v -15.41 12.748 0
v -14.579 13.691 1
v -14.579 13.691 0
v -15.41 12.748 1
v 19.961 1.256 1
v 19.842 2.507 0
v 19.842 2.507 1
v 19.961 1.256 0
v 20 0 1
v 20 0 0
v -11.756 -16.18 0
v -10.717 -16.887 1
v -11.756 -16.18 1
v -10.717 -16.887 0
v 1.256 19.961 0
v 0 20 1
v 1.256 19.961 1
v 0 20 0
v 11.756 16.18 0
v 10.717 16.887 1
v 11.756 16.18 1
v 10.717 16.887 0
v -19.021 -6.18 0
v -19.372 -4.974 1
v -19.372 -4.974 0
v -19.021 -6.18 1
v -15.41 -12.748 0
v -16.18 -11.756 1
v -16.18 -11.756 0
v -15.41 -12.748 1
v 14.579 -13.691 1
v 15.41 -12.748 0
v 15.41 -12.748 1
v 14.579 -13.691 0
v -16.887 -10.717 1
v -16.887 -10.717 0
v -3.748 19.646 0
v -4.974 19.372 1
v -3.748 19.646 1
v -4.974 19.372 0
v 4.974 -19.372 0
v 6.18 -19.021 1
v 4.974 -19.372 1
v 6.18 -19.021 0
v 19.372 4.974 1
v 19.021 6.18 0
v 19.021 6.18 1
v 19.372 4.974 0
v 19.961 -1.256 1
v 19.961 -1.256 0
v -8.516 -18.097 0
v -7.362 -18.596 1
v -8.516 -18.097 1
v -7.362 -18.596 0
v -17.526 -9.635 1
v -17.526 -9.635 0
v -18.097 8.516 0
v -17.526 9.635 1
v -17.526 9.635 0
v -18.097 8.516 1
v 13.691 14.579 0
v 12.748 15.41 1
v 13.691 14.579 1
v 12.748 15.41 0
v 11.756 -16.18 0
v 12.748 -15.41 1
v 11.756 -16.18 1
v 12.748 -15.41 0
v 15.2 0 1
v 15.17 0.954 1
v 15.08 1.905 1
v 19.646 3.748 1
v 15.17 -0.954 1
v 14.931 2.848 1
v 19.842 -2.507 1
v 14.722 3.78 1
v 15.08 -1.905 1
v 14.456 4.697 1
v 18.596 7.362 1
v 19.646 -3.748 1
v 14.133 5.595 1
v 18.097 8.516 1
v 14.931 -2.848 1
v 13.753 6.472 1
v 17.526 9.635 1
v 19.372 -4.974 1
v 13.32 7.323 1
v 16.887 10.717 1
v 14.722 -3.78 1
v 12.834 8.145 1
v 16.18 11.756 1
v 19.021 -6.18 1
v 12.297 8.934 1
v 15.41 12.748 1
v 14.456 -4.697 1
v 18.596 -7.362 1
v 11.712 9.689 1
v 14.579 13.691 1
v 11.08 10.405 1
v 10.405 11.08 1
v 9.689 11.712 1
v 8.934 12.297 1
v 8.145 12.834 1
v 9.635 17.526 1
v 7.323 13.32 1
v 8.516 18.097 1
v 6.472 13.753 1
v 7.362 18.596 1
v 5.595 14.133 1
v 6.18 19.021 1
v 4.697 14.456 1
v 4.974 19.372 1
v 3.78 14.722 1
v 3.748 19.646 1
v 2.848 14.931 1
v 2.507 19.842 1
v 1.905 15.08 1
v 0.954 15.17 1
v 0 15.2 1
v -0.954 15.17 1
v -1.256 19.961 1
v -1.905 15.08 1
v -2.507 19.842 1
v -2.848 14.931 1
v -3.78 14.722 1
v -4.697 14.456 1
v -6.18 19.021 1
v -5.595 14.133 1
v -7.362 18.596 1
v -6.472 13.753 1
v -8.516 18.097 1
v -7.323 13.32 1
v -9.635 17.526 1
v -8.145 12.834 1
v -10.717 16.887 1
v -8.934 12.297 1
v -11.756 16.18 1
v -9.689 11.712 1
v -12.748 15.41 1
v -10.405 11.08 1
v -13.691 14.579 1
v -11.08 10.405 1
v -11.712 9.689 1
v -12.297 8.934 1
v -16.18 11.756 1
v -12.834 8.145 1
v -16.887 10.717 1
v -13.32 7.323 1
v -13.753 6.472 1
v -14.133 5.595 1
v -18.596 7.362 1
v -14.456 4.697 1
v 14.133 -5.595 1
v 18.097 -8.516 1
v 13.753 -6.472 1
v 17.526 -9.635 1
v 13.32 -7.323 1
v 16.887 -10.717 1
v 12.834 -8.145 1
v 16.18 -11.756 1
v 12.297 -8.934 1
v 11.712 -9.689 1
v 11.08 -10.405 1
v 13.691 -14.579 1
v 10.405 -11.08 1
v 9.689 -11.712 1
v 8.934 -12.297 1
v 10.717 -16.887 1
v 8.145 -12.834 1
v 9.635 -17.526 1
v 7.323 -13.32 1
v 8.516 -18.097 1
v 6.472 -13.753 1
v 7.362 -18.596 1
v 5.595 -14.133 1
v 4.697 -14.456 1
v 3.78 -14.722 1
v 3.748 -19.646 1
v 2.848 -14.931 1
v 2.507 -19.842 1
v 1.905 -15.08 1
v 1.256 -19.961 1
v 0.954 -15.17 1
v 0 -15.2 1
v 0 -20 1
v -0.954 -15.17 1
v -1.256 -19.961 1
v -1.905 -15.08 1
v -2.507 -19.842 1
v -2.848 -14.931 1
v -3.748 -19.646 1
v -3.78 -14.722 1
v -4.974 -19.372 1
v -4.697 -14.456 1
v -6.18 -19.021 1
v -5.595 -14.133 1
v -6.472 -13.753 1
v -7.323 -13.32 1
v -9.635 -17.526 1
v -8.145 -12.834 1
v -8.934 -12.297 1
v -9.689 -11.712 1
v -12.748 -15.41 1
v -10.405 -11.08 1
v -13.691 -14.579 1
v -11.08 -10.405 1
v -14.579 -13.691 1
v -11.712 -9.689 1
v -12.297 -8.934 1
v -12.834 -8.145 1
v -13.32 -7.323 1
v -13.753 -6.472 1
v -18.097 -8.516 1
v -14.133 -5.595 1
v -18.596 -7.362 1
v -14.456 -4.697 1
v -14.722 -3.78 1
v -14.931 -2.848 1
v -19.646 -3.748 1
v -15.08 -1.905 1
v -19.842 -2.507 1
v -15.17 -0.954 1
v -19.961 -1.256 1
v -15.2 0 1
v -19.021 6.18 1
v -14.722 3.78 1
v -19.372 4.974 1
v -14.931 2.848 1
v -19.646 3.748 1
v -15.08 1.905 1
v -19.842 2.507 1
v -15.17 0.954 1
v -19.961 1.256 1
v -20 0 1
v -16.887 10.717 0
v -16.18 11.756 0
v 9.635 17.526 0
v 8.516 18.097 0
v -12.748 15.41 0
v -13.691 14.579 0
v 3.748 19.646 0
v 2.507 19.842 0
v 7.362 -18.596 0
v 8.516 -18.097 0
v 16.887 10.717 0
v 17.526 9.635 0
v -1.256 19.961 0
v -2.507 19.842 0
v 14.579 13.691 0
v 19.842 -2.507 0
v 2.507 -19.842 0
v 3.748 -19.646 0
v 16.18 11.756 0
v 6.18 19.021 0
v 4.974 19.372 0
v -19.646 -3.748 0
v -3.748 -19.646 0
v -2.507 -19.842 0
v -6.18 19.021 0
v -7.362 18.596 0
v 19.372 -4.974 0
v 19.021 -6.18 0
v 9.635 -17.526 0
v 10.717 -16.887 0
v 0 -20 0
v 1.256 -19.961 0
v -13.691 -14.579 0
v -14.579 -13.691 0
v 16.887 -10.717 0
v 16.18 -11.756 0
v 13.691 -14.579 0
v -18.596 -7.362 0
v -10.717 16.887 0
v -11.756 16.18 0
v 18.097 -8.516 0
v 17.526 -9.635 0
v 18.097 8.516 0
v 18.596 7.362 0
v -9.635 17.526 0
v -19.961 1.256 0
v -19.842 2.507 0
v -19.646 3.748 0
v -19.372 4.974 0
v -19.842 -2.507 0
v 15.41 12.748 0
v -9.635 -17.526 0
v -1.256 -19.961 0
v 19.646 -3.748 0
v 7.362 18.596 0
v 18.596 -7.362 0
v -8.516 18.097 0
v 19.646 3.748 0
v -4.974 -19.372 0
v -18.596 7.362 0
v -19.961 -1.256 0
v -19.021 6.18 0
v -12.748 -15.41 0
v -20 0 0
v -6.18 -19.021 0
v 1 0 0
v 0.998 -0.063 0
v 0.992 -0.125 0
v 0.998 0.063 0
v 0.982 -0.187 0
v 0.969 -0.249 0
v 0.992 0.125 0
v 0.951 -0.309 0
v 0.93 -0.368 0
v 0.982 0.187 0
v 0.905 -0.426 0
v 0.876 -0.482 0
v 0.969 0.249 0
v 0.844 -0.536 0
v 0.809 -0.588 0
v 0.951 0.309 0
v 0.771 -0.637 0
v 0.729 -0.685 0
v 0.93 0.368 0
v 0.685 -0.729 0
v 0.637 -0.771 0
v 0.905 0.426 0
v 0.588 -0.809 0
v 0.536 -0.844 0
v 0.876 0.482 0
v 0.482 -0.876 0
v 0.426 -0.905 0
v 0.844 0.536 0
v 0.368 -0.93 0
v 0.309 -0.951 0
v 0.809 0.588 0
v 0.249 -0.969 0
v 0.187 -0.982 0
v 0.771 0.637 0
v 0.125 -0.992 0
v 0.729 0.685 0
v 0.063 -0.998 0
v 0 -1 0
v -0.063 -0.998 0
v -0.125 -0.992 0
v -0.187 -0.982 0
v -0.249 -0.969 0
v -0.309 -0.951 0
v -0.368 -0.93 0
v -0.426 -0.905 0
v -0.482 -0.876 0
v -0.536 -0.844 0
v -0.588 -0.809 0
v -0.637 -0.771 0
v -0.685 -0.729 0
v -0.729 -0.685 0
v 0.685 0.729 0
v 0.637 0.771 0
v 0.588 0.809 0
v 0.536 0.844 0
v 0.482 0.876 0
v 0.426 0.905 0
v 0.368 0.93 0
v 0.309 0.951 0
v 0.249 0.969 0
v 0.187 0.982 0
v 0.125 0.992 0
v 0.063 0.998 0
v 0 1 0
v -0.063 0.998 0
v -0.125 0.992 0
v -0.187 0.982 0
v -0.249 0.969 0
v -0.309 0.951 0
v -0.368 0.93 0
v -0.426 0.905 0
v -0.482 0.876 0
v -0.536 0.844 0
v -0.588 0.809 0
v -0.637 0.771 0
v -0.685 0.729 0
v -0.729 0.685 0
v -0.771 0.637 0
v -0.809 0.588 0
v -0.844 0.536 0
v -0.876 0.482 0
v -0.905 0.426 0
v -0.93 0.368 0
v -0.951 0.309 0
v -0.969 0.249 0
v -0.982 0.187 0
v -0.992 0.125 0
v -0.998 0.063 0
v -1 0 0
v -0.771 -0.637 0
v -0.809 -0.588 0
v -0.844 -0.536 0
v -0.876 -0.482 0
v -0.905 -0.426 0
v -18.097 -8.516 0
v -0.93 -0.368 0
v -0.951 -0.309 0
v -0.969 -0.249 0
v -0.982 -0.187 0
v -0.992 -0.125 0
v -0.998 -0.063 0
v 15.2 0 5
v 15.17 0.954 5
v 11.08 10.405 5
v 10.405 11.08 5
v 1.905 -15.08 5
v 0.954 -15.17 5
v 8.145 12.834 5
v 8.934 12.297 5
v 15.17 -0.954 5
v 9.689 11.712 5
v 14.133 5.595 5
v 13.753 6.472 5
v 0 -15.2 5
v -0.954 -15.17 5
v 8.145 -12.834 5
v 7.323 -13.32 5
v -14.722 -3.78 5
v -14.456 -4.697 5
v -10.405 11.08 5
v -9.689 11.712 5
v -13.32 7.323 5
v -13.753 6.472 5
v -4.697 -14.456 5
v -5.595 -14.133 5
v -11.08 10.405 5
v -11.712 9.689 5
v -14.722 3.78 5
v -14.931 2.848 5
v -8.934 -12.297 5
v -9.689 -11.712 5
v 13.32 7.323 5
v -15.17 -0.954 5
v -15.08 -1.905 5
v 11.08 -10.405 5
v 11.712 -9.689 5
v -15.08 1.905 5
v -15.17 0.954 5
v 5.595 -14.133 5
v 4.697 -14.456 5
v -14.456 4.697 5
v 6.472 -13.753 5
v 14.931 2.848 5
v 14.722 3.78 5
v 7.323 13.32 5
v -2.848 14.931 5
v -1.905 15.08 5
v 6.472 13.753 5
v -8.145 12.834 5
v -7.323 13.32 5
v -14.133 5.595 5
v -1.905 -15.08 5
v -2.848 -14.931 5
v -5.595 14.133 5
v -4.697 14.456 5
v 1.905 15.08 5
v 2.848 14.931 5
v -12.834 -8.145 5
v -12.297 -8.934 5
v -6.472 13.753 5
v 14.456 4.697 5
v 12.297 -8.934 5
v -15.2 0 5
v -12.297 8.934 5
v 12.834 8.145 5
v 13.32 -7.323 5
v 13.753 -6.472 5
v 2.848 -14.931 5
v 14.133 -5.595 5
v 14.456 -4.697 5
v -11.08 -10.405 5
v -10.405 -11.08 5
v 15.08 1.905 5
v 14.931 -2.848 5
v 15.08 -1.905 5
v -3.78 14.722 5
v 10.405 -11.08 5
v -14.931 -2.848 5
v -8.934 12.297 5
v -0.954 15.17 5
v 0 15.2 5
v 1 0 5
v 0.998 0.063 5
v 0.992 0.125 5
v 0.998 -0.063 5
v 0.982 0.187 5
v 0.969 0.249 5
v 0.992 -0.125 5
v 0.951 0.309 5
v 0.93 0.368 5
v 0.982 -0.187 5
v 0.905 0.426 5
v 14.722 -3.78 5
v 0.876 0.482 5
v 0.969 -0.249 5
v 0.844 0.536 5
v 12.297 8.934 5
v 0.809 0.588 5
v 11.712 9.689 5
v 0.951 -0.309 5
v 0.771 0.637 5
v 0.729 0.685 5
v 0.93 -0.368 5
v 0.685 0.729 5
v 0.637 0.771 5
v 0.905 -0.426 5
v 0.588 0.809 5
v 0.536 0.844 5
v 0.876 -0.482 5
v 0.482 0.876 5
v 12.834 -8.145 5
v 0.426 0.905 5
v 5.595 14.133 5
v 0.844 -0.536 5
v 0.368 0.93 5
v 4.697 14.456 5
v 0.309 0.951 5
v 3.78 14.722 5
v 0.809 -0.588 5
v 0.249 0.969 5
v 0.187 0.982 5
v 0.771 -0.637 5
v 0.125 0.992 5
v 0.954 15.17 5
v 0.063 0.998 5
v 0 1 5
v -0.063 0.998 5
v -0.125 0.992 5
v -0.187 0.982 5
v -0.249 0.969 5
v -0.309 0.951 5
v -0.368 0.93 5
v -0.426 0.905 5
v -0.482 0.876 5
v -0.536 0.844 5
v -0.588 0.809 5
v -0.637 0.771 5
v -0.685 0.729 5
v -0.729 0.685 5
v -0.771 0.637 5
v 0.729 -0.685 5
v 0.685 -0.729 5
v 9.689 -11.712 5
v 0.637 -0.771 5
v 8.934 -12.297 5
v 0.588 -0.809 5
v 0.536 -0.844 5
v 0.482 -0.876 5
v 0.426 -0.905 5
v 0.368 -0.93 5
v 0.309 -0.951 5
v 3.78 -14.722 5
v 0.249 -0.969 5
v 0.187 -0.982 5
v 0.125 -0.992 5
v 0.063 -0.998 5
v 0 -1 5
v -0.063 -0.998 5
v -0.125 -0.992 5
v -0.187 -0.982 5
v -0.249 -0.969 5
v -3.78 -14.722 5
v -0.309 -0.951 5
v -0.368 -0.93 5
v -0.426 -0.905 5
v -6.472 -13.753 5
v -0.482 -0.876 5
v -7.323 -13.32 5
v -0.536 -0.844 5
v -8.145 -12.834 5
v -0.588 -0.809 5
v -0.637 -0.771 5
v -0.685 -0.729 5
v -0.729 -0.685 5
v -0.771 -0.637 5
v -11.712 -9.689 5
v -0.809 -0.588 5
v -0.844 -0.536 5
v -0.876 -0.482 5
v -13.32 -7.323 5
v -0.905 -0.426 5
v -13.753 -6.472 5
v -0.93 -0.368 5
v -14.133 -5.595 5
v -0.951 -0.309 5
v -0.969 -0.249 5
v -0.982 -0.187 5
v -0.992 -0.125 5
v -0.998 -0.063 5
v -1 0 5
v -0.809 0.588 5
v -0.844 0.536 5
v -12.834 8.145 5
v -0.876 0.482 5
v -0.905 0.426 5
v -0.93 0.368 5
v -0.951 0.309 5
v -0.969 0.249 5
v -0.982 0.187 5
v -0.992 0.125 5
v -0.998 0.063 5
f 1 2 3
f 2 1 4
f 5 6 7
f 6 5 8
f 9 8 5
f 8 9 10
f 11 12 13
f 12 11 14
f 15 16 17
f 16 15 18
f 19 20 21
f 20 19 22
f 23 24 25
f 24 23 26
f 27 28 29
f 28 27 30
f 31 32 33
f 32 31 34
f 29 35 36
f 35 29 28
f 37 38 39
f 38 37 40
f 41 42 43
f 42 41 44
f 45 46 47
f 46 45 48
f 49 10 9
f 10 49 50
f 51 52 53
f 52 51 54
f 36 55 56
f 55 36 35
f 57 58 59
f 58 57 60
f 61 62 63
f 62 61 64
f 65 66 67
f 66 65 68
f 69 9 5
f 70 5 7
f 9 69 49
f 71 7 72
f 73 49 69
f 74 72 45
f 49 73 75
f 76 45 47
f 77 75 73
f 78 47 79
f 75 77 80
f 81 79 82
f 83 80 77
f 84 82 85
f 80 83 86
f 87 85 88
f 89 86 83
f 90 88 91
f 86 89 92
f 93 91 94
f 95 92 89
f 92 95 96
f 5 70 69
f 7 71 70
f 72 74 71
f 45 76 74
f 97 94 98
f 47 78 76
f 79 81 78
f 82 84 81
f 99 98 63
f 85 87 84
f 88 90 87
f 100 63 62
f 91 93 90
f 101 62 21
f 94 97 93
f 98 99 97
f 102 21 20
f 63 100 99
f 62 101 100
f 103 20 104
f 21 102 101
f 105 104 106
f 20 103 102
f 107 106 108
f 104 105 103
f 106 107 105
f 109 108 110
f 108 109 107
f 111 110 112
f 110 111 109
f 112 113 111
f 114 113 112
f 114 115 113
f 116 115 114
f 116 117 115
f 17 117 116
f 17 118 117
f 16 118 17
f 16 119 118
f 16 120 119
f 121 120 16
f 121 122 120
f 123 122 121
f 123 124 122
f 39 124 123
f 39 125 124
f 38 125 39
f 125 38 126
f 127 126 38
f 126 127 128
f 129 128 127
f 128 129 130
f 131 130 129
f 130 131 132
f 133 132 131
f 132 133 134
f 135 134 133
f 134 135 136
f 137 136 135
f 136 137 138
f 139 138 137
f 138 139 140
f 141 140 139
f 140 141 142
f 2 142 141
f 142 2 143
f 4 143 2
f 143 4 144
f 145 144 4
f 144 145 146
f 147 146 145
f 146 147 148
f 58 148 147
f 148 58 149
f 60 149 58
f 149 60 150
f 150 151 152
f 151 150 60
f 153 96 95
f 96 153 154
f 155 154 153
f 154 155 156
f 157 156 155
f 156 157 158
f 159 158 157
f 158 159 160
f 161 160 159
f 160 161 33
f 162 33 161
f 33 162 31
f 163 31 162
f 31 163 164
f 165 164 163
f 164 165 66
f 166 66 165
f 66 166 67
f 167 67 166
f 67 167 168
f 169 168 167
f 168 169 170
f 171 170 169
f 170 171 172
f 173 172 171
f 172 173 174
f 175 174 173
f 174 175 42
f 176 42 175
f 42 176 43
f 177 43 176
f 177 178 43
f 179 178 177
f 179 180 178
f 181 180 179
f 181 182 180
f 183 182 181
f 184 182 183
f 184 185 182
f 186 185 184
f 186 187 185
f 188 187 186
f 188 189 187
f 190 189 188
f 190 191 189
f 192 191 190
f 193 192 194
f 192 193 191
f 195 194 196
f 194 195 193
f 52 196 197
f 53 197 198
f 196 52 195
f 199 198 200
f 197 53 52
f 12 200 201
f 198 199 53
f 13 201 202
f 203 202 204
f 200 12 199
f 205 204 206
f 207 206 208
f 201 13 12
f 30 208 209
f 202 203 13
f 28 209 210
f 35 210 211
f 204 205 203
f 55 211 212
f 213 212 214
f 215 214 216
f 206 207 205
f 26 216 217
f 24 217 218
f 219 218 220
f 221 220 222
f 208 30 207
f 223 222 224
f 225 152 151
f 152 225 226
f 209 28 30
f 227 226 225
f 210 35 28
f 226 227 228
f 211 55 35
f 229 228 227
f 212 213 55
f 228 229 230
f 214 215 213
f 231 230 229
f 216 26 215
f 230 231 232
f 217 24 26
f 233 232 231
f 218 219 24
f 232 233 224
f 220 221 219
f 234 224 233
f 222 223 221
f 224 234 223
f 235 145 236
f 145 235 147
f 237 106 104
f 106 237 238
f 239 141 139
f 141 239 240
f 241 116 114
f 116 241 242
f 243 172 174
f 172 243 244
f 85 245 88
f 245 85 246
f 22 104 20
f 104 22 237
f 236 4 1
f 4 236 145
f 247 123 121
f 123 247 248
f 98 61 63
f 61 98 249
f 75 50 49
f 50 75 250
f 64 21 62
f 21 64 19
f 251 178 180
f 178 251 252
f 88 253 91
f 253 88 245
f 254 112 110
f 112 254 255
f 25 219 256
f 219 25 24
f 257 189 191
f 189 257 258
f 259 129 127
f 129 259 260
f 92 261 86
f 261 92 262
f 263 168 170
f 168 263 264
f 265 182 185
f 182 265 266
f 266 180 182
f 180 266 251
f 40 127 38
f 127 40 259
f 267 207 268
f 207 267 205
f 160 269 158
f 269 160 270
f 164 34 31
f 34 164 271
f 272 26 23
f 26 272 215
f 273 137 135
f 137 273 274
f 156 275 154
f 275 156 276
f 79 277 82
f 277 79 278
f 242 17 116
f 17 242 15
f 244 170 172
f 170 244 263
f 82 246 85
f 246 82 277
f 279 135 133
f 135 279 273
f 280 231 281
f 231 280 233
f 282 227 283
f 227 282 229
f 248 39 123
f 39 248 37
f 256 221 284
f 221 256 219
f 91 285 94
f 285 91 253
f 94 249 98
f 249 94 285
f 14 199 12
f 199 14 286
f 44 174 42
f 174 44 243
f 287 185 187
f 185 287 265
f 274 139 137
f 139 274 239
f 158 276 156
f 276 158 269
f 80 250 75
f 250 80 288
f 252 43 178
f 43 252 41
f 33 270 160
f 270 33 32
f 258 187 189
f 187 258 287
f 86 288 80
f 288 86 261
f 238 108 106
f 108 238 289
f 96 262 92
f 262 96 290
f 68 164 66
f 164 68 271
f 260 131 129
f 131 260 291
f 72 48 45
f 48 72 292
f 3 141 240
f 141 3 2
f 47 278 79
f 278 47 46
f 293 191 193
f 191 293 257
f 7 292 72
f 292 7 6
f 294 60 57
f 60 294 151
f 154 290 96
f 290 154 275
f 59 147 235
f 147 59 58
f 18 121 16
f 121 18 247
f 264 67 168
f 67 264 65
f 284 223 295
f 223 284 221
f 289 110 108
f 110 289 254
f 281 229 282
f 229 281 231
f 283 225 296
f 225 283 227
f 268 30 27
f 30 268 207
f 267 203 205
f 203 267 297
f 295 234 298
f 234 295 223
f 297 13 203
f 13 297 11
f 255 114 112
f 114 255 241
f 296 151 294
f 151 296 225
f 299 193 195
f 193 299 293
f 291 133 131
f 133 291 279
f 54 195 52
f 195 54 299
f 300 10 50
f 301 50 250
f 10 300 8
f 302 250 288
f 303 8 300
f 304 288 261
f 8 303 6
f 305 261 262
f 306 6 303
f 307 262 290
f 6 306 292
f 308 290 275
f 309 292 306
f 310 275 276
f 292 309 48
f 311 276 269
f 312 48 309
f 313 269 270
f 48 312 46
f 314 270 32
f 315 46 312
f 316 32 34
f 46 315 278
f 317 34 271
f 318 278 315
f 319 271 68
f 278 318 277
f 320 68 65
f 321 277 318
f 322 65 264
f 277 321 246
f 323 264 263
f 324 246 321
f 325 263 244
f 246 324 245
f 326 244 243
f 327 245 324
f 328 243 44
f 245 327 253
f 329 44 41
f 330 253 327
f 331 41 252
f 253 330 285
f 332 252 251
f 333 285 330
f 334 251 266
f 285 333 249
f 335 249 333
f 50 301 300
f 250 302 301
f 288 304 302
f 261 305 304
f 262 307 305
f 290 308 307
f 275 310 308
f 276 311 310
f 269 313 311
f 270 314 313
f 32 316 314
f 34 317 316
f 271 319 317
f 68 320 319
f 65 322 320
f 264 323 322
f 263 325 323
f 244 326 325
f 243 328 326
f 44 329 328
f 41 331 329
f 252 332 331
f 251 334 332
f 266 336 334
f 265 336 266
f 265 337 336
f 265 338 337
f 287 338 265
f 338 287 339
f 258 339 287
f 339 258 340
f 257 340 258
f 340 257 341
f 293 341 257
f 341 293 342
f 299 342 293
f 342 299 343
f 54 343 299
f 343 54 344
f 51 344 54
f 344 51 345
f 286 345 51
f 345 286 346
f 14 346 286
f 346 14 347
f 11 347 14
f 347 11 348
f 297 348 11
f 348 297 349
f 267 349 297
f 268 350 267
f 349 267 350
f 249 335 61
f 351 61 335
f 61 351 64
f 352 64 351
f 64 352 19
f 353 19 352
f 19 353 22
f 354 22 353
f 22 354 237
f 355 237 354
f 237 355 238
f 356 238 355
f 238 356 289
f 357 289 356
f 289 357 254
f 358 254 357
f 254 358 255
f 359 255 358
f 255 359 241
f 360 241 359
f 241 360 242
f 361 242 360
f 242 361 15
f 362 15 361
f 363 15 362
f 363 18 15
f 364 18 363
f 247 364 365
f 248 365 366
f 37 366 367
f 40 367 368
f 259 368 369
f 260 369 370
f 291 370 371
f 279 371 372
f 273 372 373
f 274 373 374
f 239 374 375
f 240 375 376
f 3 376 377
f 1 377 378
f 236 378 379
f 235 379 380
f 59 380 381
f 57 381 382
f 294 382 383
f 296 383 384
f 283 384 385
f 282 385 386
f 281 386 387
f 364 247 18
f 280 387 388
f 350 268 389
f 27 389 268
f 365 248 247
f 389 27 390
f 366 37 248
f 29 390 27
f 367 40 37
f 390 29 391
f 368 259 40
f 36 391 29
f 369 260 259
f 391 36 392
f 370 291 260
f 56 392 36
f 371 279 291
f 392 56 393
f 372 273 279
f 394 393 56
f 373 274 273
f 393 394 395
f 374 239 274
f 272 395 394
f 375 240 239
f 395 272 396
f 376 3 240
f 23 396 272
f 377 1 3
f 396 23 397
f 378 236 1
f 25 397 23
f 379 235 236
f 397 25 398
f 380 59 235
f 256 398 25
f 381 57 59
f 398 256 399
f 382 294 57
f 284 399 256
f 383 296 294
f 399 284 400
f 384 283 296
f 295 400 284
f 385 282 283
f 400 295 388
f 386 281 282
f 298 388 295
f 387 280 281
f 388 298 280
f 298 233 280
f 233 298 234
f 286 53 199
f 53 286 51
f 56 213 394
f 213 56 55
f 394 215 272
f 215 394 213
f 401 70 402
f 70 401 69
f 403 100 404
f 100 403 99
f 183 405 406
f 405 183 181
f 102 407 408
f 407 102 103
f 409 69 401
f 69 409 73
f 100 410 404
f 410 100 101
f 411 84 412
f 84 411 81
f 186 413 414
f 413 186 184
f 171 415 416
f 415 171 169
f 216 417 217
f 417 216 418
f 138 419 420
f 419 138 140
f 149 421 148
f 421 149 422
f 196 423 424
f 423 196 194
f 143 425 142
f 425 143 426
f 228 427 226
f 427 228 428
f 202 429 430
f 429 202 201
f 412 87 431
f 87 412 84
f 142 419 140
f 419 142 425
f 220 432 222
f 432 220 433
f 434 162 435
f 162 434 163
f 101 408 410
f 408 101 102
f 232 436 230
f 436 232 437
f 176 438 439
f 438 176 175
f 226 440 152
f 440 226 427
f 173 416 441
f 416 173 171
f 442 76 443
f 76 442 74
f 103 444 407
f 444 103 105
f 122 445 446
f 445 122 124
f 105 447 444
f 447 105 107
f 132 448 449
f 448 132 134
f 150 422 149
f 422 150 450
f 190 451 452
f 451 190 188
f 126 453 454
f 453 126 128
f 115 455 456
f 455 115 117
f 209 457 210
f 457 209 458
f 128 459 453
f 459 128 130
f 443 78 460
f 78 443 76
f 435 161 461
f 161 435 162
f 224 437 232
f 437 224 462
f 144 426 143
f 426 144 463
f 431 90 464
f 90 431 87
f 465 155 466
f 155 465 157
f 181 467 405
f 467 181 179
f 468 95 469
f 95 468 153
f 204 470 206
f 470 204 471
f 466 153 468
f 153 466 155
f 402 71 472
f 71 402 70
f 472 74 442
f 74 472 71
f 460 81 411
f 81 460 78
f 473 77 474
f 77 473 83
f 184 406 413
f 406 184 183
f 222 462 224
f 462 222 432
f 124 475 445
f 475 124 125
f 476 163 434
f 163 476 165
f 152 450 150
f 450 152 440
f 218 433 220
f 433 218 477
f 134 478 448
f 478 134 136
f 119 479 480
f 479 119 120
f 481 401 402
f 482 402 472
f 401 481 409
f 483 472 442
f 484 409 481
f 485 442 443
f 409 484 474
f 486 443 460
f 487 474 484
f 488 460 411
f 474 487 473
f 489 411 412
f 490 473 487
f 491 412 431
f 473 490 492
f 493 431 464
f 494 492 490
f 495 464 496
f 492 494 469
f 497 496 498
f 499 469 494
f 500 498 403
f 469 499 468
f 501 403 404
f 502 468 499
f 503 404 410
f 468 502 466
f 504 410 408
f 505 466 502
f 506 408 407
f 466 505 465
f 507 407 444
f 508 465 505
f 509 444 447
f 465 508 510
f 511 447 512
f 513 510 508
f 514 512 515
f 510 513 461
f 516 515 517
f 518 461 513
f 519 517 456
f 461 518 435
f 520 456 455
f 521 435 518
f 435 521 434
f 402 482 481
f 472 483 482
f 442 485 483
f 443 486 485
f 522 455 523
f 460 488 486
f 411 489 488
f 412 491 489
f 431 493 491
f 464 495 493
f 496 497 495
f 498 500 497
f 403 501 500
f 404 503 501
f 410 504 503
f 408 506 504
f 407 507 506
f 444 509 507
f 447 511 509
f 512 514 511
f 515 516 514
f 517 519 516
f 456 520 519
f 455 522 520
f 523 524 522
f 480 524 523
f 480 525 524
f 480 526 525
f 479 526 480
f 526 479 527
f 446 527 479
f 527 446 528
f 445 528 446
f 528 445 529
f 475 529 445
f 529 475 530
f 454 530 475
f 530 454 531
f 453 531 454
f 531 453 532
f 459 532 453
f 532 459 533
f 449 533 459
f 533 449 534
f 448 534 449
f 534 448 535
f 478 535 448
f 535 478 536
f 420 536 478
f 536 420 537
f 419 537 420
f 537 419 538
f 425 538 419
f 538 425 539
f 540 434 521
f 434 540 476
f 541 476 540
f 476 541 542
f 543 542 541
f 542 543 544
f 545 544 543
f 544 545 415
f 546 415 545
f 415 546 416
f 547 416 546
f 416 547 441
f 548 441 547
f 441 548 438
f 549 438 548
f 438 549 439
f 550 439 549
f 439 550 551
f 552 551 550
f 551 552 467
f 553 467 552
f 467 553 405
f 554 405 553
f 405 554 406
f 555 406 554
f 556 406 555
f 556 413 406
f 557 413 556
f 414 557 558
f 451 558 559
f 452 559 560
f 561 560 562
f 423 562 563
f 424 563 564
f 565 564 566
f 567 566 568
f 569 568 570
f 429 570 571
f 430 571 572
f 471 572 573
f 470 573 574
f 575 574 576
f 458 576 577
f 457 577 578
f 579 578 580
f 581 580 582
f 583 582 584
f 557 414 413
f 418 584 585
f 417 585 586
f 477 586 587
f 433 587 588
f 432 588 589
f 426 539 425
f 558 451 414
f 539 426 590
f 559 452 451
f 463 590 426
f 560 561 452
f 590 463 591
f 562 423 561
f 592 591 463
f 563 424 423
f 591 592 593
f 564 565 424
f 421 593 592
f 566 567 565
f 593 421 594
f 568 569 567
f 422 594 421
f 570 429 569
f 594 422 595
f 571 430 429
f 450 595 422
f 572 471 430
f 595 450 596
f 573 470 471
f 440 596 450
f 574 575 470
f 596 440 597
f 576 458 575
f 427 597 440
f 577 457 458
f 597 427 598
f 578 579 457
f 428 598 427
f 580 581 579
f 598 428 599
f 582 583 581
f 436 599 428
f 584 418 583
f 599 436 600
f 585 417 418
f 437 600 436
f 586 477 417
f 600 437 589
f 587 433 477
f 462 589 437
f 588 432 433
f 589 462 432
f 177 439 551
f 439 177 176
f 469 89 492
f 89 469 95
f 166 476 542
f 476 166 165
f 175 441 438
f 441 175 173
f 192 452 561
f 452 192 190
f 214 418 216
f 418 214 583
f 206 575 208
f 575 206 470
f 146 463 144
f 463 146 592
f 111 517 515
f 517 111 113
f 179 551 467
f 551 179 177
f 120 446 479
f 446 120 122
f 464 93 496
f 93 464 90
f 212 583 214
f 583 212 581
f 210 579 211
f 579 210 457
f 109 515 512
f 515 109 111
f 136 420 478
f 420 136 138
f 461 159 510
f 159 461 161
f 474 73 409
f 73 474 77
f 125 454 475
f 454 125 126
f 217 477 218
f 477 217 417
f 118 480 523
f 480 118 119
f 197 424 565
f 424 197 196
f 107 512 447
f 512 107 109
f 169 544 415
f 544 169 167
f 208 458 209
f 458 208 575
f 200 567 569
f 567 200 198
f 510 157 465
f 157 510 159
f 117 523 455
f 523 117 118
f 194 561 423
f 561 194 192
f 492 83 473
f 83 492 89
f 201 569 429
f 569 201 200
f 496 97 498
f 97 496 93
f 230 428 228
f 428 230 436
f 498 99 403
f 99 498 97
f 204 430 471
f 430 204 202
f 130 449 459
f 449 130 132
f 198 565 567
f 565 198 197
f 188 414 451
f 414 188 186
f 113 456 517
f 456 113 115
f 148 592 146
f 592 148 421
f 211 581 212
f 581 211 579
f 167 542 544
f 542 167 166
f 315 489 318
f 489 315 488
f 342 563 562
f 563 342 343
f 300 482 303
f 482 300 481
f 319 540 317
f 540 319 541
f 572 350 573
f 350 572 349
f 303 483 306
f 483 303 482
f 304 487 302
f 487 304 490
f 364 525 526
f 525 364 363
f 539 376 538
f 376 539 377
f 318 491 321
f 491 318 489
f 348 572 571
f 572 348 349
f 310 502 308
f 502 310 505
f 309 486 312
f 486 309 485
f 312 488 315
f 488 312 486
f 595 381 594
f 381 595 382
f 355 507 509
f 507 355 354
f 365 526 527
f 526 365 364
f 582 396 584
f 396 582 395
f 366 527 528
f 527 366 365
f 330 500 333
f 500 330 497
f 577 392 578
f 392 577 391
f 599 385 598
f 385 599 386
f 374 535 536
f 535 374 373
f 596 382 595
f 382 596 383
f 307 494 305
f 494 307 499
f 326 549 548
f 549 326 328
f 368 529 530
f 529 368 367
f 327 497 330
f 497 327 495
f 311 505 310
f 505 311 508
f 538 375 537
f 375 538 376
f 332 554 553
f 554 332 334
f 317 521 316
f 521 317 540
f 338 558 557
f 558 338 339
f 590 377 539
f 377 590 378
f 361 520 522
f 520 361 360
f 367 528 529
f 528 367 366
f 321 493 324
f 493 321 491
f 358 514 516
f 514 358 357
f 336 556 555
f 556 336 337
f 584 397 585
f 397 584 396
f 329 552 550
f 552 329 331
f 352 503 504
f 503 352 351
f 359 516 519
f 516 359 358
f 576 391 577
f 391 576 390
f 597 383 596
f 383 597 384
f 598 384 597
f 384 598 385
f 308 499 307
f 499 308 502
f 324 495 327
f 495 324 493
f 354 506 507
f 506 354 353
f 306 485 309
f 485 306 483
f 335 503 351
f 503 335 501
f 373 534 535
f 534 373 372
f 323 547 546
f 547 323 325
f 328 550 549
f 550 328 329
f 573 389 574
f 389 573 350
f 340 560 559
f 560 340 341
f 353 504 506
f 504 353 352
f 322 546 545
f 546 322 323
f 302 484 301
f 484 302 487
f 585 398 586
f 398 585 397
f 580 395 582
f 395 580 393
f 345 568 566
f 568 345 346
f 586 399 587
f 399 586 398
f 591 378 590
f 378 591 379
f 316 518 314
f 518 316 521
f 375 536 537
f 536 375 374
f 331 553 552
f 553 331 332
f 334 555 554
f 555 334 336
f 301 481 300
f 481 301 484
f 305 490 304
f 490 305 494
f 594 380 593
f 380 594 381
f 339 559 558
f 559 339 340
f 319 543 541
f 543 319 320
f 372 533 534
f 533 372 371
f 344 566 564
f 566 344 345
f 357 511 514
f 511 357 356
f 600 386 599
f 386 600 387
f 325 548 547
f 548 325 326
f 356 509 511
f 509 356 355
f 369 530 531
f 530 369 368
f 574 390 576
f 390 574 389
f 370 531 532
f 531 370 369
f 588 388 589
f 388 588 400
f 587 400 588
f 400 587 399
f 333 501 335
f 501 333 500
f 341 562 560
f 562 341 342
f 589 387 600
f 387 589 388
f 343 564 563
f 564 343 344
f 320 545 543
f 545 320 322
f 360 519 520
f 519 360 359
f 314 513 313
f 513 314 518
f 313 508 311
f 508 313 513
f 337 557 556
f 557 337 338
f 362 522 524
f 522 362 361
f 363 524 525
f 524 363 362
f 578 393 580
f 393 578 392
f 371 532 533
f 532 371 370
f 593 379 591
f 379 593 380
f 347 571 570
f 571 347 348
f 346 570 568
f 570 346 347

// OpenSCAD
res=100;
r_splh=1;
alt=100;

difference(){
    translate([0,0,0]){
        cylinder(1,20,20,$fn=res);
        cylinder(5,15.2,15.2,$fn=res);
    }
    #translate([0,0,-15])
    #cylinder(alt,r_splh,r_splh,$fn=res);
}
